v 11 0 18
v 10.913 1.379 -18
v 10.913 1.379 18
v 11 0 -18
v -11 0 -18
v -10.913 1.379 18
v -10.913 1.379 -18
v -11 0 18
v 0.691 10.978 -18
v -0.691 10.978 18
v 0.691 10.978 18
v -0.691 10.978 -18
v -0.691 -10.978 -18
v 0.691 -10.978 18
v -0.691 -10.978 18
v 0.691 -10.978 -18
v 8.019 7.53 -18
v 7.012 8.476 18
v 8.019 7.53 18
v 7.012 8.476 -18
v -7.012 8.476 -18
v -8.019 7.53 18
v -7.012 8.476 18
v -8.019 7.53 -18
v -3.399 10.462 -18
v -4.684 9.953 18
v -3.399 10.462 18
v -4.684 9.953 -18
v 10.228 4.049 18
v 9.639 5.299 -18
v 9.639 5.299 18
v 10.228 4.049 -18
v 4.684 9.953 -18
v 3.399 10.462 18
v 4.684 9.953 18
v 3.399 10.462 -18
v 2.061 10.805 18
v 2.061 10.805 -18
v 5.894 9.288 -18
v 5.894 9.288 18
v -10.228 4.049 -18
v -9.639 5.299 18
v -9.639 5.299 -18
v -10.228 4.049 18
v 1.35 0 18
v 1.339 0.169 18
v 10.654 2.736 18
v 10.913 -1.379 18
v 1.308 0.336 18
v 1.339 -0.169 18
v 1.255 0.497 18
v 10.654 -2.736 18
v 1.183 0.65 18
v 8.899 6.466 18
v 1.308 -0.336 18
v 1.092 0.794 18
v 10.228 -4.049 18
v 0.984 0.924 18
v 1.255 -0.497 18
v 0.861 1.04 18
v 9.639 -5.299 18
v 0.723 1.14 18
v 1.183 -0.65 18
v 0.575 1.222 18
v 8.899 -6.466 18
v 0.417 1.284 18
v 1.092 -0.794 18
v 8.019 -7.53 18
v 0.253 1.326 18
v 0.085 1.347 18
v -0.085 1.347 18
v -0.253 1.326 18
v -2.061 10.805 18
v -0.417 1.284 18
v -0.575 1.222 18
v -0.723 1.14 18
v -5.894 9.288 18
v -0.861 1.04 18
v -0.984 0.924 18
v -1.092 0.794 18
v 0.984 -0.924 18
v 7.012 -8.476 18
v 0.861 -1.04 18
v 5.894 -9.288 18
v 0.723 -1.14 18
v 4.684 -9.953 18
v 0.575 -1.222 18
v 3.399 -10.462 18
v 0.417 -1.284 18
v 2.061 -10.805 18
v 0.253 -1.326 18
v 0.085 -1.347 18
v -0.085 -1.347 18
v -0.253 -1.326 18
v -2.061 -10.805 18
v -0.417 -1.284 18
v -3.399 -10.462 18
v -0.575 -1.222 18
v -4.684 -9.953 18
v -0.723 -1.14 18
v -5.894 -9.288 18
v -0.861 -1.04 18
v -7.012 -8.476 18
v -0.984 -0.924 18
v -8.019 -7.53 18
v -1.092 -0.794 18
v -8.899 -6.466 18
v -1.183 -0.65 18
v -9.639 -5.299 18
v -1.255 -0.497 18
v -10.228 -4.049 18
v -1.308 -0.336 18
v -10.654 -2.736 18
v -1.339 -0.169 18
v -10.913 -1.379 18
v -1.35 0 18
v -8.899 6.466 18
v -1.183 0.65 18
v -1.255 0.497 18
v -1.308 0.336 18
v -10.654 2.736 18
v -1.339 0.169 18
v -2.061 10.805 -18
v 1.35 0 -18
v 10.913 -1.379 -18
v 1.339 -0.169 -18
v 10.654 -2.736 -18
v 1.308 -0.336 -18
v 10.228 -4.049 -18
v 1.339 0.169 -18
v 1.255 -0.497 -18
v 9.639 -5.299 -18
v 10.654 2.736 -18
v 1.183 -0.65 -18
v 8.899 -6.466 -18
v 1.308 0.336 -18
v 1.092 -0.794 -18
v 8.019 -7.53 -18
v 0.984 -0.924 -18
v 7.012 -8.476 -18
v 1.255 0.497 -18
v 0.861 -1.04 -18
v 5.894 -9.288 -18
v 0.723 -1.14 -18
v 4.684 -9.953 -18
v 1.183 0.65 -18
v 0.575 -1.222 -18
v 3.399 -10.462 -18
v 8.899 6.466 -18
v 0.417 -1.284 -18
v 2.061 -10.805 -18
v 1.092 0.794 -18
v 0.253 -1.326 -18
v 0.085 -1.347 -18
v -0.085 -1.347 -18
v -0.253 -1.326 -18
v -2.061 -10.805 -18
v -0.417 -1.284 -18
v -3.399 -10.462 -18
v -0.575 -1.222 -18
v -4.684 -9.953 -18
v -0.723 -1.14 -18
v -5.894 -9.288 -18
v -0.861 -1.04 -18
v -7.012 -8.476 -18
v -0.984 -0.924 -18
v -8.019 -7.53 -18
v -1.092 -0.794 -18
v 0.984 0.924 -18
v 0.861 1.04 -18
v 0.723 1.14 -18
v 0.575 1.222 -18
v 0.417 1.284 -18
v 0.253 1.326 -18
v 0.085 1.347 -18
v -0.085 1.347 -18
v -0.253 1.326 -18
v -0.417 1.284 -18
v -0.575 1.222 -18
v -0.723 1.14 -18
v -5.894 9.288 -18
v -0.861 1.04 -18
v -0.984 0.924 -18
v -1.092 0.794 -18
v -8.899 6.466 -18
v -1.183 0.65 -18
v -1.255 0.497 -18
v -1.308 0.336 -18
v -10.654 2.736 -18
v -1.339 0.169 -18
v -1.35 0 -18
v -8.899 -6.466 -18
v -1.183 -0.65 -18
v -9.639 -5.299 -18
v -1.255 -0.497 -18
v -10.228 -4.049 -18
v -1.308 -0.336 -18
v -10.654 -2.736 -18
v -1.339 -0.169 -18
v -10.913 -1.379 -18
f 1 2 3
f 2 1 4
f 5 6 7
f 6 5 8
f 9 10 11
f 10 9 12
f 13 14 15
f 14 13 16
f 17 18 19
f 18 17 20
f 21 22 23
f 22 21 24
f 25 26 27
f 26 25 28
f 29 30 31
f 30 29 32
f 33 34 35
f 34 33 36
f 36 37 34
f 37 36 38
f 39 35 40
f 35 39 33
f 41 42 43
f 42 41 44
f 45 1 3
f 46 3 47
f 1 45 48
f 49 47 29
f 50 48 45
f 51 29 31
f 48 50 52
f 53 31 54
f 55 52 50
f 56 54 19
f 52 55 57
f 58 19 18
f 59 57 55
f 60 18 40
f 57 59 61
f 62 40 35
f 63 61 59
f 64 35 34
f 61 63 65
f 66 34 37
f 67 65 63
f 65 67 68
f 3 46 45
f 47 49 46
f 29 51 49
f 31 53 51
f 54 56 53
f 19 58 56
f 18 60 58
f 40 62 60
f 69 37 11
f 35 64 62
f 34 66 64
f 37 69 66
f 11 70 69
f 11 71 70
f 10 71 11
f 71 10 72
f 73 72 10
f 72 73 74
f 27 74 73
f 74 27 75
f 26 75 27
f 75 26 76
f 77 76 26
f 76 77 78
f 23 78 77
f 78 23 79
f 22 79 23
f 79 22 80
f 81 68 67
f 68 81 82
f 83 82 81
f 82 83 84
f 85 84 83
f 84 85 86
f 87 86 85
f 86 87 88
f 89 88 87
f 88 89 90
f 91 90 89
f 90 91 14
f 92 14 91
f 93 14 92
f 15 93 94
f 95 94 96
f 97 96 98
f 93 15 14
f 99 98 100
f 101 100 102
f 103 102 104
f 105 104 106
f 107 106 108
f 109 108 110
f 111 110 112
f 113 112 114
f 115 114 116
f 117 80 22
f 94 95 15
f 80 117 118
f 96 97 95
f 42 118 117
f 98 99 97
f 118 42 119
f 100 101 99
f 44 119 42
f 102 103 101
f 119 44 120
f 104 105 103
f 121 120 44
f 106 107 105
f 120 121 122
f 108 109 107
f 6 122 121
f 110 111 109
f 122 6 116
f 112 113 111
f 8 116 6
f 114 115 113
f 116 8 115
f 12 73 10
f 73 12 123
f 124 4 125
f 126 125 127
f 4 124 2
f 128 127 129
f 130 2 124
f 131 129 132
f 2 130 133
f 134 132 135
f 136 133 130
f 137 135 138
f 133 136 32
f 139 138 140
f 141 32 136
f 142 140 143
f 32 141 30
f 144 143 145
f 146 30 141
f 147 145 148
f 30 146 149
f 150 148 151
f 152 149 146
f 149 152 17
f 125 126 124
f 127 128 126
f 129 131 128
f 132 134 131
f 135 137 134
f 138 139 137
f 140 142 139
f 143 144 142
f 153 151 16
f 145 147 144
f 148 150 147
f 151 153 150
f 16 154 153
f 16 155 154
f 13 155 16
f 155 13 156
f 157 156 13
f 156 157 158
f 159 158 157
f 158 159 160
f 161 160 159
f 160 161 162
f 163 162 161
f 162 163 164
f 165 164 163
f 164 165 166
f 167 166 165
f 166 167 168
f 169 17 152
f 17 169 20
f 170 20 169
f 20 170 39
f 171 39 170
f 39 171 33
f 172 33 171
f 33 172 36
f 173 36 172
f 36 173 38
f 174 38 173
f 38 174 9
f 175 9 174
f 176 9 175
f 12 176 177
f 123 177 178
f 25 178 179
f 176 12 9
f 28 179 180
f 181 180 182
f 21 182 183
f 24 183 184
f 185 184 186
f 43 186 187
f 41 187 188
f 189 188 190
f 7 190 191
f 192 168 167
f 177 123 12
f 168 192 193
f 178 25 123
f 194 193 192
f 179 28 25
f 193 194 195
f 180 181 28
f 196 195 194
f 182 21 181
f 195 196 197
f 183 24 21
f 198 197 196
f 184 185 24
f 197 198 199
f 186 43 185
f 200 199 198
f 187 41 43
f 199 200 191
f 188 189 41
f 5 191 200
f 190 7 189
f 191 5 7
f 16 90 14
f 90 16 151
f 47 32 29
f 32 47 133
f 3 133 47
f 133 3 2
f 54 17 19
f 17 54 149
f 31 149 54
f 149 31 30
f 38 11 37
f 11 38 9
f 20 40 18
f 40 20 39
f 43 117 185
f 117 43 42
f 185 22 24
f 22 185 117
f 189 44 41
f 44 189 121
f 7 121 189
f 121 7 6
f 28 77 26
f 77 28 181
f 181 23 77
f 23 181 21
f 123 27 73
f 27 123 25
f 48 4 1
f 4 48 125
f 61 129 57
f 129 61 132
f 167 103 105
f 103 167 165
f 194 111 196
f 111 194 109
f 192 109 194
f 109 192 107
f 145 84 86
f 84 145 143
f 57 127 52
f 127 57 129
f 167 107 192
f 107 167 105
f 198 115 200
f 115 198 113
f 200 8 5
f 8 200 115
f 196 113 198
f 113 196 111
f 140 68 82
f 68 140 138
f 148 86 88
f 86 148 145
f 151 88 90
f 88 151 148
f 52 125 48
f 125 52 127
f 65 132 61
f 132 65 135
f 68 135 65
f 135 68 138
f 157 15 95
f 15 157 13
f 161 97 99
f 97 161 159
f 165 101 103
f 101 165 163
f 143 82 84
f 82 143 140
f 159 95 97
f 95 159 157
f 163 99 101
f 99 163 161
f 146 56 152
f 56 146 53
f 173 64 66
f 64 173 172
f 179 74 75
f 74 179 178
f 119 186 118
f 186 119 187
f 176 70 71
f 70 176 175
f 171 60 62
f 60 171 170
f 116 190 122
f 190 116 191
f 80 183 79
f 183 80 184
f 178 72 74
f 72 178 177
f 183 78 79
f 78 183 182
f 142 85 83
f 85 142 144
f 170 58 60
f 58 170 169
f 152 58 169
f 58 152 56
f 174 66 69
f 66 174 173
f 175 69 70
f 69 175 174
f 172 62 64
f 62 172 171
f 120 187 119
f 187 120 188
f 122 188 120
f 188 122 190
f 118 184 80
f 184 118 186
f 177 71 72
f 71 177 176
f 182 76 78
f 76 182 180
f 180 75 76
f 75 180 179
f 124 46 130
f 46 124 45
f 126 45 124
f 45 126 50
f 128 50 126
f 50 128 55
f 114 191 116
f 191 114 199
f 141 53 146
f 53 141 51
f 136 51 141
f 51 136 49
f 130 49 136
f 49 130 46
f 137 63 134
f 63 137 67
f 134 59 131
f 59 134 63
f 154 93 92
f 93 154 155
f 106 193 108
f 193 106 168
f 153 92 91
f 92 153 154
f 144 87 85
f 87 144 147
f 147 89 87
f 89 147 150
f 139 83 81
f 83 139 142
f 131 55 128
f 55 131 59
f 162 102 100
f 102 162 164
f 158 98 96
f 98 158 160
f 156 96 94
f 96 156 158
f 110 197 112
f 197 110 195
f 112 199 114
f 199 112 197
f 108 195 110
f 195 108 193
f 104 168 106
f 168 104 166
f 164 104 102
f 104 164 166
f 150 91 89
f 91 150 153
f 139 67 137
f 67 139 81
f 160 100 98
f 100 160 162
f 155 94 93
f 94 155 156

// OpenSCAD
$fn = 50;


difference() {
	union() {
		translate(v = [0, 0, -18.0000000000]) {
			cylinder(h = 36, r = 11.0000000000);
		}
	}
	union() {
		translate(v = [0, 0, -100.0000000000]) {
			cylinder(h = 200, r = 1.3500000000);
		}
	}
}
